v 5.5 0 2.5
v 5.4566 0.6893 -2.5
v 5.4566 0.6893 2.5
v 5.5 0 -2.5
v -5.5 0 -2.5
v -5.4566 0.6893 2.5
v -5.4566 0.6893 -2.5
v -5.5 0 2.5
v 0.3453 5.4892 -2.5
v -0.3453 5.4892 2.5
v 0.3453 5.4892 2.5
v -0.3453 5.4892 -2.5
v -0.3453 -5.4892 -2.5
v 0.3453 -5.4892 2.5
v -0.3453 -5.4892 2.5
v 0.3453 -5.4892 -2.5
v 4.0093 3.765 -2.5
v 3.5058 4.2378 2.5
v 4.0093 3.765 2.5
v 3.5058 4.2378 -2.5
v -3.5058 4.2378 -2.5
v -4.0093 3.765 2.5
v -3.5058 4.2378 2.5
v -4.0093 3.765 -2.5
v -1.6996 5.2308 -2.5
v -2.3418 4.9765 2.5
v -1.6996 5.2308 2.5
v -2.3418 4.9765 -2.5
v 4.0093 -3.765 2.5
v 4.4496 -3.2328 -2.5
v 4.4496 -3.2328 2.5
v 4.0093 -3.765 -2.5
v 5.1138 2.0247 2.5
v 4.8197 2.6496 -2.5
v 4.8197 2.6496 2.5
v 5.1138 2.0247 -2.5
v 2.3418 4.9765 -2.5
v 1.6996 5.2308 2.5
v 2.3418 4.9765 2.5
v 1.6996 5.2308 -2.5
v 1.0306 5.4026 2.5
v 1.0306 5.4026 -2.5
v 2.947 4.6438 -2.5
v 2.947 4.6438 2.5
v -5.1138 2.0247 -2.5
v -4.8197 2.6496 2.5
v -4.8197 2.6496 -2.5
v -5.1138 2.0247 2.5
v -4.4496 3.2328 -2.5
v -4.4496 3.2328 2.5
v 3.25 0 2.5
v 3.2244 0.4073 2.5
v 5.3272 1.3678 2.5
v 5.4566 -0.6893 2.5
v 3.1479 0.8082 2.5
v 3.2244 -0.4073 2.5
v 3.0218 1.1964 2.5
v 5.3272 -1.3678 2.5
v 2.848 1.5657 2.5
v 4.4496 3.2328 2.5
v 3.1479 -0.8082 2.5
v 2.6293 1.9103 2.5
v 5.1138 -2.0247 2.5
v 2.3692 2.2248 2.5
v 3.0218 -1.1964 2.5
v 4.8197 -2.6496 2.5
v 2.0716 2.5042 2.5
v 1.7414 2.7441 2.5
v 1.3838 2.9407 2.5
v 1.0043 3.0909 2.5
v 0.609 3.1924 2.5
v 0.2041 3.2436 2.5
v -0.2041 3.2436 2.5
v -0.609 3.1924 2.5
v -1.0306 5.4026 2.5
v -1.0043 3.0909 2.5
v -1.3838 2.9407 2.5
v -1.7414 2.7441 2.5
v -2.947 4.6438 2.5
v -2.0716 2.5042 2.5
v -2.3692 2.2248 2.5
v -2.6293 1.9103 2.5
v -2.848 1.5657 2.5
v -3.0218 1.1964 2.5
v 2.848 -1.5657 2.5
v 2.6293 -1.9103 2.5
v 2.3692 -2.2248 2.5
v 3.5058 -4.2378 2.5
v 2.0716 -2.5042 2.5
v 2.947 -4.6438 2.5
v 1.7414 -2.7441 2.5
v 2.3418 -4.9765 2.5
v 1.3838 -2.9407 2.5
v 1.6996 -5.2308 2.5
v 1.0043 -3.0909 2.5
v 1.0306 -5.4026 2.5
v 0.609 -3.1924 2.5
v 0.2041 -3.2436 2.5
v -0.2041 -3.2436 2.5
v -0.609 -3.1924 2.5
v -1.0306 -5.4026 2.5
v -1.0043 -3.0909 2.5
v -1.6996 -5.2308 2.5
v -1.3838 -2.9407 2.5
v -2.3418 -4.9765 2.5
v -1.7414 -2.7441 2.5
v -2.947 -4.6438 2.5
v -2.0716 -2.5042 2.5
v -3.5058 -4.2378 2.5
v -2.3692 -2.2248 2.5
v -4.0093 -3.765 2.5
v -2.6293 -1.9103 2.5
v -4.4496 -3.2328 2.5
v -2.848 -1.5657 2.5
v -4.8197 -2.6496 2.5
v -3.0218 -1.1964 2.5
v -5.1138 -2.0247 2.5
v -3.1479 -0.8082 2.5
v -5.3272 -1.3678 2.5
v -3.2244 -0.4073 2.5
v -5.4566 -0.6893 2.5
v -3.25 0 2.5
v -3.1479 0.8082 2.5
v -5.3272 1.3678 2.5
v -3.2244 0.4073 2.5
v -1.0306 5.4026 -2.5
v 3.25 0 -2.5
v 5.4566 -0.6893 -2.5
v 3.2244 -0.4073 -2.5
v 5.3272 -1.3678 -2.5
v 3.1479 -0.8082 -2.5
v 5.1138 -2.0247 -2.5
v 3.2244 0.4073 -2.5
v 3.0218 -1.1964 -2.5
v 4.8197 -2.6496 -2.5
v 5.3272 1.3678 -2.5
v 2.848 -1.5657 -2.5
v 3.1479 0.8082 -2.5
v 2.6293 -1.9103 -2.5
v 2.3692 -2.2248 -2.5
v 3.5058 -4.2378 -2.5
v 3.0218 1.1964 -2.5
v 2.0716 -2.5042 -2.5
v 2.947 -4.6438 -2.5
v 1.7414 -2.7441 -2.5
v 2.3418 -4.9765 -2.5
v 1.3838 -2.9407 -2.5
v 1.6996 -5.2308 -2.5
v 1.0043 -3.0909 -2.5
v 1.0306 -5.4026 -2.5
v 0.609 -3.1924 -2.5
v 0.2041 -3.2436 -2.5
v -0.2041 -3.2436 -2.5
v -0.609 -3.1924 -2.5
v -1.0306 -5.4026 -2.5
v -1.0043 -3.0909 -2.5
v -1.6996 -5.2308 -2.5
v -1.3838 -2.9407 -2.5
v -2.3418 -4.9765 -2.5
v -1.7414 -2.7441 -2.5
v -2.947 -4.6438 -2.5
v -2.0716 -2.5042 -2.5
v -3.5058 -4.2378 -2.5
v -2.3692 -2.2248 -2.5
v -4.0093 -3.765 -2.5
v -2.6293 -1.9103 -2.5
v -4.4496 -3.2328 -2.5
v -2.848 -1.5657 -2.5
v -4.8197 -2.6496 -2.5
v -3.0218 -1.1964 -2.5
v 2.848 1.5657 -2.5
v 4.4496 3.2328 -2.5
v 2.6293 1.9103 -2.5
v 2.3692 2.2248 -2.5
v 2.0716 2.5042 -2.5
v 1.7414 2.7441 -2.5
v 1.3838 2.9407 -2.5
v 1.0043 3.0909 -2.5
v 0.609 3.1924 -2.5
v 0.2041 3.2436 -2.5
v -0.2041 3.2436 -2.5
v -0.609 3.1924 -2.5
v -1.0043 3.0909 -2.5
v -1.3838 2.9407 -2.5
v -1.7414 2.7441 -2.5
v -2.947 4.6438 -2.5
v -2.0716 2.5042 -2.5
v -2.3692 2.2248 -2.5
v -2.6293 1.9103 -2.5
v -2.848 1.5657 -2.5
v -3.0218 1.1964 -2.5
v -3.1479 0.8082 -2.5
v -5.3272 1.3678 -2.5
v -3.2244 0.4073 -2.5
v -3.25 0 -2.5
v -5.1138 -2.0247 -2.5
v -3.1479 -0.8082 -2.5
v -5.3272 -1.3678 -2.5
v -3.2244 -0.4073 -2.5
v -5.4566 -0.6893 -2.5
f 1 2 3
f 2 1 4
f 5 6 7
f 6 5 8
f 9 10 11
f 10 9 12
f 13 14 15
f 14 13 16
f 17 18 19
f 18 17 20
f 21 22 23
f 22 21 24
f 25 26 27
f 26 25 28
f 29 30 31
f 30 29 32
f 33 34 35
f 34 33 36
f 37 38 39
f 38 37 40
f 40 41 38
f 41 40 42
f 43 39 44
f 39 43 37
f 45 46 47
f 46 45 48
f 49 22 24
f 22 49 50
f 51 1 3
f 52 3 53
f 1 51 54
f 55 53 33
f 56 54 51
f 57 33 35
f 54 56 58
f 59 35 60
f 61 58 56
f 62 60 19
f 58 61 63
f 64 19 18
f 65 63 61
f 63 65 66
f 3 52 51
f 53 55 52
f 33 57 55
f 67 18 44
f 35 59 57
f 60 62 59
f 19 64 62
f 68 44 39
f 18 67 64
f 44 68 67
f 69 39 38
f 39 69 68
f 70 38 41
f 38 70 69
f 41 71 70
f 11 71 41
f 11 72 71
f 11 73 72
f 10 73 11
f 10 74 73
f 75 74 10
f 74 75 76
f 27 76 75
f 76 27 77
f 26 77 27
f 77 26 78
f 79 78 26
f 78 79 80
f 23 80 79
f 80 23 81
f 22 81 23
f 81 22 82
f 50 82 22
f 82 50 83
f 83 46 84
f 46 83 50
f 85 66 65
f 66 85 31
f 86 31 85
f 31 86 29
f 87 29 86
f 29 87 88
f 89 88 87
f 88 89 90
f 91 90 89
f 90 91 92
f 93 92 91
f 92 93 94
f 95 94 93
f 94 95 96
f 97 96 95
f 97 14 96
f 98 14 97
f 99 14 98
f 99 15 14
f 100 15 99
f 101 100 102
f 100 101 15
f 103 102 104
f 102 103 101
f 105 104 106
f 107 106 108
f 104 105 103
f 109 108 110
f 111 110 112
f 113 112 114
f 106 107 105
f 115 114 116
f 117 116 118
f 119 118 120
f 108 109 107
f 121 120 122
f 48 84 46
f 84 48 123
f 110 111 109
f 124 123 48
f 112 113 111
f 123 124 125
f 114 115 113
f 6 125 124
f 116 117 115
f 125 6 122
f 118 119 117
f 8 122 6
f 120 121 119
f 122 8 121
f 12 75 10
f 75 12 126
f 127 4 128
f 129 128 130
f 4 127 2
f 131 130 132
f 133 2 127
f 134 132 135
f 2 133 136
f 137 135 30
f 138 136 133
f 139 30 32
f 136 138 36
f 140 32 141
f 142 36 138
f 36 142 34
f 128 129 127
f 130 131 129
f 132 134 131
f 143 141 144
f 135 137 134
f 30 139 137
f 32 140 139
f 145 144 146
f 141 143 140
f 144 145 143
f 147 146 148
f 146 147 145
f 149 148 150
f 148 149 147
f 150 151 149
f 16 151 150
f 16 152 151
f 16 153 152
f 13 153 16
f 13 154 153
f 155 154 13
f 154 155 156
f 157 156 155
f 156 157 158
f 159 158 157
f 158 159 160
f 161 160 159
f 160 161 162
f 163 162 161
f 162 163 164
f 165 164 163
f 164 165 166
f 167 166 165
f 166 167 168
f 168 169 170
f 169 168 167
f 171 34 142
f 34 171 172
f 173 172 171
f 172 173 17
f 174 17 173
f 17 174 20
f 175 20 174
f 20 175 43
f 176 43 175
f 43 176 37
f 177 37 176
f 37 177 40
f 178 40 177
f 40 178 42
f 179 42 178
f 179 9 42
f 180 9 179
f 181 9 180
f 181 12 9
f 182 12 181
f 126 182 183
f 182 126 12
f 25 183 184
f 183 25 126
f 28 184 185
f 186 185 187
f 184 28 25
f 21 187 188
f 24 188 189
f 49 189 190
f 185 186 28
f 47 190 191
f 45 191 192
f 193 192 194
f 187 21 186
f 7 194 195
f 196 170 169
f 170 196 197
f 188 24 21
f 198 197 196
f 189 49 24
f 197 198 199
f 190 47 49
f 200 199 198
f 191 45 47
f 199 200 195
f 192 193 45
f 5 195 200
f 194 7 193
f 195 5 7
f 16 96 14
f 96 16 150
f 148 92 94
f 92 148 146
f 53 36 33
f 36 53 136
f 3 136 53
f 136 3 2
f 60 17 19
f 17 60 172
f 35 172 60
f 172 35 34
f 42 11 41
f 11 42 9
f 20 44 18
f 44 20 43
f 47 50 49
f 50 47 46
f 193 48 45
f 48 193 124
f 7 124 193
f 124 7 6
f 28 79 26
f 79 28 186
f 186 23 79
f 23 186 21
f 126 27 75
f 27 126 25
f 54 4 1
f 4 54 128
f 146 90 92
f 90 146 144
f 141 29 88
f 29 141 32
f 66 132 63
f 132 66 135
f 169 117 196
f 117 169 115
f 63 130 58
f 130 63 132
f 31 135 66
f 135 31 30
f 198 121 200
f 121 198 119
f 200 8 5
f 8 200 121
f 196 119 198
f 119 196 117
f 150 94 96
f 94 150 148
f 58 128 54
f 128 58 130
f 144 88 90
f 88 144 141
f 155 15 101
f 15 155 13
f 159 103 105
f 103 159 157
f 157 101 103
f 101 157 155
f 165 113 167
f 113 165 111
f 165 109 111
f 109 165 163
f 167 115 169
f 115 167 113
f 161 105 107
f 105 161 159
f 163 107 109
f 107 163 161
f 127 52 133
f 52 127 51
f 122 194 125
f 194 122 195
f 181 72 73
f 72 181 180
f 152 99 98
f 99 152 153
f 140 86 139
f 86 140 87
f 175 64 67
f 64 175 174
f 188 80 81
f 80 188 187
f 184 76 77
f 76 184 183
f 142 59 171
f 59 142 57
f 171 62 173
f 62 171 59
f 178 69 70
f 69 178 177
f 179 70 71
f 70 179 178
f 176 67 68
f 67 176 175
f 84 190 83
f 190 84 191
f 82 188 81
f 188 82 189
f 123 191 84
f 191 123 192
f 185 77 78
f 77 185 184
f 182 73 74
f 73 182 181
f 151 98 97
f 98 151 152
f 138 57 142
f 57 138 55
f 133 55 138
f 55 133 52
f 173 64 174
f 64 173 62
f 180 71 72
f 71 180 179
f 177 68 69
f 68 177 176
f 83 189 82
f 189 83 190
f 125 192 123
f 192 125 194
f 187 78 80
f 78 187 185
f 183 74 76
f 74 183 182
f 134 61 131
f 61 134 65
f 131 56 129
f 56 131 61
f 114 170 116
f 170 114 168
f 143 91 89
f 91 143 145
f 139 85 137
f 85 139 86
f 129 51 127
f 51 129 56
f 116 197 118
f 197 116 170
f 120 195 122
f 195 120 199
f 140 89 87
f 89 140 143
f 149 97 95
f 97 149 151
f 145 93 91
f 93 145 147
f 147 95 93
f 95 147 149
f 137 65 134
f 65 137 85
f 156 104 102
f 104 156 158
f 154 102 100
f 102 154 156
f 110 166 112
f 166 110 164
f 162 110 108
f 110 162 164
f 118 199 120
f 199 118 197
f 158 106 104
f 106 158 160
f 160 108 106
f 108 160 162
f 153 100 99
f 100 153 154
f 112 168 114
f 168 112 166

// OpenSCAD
$fn = 50;


difference() {
	union() {
		translate(v = [0, 0, -2.5000000000]) {
			cylinder(h = 5, r = 5.5000000000);
		}
	}
	union() {
		translate(v = [0, 0, -100.0000000000]) {
			cylinder(h = 200, r = 3.2500000000);
		}
	}
}
